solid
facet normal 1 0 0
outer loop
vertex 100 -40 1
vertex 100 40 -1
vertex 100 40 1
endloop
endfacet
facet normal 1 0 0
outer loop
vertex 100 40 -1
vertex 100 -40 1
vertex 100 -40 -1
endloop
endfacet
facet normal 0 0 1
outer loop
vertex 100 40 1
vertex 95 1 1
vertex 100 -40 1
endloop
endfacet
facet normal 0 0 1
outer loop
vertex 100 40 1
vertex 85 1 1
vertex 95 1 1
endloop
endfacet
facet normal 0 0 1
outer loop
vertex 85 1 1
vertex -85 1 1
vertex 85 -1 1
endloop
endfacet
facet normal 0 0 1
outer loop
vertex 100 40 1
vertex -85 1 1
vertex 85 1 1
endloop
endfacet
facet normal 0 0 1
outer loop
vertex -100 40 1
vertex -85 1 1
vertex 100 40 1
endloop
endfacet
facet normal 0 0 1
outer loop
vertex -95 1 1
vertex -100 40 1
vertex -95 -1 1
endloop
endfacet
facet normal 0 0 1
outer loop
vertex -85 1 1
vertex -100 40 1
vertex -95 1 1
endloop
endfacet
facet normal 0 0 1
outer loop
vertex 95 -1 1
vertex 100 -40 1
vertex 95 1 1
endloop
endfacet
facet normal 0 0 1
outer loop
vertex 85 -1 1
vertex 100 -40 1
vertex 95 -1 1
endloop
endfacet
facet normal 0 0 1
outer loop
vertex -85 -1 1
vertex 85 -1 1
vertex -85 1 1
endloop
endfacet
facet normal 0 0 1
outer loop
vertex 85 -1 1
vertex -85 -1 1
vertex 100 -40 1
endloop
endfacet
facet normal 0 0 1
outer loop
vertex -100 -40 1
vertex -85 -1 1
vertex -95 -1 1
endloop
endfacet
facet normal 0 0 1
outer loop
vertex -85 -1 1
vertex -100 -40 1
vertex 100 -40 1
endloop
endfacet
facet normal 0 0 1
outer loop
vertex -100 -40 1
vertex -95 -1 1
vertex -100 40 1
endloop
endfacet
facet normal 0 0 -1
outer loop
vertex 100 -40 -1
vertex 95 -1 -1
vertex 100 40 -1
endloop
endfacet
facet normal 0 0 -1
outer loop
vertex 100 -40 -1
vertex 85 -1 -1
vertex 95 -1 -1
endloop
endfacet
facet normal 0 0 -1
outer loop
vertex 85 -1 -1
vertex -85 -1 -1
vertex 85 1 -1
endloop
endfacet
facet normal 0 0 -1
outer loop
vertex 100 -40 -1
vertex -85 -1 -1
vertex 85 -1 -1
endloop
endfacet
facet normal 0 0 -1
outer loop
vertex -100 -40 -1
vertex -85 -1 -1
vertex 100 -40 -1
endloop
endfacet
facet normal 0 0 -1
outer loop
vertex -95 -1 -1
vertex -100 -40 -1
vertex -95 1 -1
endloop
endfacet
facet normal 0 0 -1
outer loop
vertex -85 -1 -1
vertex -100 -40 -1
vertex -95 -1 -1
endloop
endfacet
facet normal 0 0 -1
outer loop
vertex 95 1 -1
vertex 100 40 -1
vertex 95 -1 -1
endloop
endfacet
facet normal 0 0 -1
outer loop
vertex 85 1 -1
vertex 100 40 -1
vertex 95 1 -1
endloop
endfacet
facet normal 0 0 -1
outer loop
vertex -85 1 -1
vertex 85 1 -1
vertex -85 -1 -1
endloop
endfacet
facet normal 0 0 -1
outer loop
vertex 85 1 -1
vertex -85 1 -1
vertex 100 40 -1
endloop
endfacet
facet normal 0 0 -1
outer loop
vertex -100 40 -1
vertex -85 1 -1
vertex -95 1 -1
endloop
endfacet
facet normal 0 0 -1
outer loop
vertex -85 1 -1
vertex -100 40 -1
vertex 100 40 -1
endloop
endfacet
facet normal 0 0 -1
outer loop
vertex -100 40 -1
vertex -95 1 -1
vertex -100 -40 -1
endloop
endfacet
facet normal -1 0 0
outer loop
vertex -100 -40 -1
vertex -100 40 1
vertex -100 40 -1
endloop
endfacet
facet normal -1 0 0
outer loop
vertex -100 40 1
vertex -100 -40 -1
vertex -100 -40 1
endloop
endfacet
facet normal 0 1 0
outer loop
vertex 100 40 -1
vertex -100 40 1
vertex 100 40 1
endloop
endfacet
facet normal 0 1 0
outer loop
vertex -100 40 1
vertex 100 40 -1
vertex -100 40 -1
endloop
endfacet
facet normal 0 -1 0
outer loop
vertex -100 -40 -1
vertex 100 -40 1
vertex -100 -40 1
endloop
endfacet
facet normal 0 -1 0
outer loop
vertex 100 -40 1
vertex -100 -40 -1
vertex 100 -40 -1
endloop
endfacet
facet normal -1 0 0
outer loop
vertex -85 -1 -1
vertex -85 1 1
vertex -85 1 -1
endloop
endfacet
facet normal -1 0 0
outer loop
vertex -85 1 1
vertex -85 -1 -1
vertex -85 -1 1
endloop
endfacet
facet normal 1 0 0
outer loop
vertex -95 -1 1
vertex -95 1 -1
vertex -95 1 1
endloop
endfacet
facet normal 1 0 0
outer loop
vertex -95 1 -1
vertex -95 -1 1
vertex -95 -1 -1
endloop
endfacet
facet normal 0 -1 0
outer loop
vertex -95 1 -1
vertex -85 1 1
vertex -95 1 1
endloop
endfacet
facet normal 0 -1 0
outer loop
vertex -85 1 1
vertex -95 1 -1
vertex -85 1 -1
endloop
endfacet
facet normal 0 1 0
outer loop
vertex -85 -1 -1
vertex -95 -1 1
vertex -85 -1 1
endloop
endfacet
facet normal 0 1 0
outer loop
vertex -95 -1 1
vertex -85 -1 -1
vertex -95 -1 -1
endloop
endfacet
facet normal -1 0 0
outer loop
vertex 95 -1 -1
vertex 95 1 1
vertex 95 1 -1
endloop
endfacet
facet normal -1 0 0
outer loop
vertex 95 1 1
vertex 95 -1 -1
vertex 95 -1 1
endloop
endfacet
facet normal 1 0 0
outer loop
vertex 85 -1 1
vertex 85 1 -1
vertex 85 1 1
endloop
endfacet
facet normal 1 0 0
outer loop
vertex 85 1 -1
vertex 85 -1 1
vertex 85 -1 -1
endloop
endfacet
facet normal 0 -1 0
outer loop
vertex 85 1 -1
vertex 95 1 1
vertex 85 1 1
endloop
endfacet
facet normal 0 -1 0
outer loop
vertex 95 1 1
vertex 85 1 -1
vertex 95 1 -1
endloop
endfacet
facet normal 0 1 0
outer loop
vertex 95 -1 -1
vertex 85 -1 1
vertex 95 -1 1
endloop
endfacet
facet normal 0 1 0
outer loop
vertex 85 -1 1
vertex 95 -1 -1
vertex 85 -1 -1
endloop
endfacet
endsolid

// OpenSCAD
// ========================================
// a 200 x 80 x 2 mm plate with two 10 x 2 mm slots
// NeuroCAD canonical IR; dimensions are millimetres
// ========================================
$fn = 48;

difference() {
  cube(size=[200, 80, 2], center=true);
  translate([-90, 0, 0]) {
    cube(size=[10, 2, 4], center=true);
  }
  translate([90, 0, 0]) {
    cube(size=[10, 2, 4], center=true);
  }
}
